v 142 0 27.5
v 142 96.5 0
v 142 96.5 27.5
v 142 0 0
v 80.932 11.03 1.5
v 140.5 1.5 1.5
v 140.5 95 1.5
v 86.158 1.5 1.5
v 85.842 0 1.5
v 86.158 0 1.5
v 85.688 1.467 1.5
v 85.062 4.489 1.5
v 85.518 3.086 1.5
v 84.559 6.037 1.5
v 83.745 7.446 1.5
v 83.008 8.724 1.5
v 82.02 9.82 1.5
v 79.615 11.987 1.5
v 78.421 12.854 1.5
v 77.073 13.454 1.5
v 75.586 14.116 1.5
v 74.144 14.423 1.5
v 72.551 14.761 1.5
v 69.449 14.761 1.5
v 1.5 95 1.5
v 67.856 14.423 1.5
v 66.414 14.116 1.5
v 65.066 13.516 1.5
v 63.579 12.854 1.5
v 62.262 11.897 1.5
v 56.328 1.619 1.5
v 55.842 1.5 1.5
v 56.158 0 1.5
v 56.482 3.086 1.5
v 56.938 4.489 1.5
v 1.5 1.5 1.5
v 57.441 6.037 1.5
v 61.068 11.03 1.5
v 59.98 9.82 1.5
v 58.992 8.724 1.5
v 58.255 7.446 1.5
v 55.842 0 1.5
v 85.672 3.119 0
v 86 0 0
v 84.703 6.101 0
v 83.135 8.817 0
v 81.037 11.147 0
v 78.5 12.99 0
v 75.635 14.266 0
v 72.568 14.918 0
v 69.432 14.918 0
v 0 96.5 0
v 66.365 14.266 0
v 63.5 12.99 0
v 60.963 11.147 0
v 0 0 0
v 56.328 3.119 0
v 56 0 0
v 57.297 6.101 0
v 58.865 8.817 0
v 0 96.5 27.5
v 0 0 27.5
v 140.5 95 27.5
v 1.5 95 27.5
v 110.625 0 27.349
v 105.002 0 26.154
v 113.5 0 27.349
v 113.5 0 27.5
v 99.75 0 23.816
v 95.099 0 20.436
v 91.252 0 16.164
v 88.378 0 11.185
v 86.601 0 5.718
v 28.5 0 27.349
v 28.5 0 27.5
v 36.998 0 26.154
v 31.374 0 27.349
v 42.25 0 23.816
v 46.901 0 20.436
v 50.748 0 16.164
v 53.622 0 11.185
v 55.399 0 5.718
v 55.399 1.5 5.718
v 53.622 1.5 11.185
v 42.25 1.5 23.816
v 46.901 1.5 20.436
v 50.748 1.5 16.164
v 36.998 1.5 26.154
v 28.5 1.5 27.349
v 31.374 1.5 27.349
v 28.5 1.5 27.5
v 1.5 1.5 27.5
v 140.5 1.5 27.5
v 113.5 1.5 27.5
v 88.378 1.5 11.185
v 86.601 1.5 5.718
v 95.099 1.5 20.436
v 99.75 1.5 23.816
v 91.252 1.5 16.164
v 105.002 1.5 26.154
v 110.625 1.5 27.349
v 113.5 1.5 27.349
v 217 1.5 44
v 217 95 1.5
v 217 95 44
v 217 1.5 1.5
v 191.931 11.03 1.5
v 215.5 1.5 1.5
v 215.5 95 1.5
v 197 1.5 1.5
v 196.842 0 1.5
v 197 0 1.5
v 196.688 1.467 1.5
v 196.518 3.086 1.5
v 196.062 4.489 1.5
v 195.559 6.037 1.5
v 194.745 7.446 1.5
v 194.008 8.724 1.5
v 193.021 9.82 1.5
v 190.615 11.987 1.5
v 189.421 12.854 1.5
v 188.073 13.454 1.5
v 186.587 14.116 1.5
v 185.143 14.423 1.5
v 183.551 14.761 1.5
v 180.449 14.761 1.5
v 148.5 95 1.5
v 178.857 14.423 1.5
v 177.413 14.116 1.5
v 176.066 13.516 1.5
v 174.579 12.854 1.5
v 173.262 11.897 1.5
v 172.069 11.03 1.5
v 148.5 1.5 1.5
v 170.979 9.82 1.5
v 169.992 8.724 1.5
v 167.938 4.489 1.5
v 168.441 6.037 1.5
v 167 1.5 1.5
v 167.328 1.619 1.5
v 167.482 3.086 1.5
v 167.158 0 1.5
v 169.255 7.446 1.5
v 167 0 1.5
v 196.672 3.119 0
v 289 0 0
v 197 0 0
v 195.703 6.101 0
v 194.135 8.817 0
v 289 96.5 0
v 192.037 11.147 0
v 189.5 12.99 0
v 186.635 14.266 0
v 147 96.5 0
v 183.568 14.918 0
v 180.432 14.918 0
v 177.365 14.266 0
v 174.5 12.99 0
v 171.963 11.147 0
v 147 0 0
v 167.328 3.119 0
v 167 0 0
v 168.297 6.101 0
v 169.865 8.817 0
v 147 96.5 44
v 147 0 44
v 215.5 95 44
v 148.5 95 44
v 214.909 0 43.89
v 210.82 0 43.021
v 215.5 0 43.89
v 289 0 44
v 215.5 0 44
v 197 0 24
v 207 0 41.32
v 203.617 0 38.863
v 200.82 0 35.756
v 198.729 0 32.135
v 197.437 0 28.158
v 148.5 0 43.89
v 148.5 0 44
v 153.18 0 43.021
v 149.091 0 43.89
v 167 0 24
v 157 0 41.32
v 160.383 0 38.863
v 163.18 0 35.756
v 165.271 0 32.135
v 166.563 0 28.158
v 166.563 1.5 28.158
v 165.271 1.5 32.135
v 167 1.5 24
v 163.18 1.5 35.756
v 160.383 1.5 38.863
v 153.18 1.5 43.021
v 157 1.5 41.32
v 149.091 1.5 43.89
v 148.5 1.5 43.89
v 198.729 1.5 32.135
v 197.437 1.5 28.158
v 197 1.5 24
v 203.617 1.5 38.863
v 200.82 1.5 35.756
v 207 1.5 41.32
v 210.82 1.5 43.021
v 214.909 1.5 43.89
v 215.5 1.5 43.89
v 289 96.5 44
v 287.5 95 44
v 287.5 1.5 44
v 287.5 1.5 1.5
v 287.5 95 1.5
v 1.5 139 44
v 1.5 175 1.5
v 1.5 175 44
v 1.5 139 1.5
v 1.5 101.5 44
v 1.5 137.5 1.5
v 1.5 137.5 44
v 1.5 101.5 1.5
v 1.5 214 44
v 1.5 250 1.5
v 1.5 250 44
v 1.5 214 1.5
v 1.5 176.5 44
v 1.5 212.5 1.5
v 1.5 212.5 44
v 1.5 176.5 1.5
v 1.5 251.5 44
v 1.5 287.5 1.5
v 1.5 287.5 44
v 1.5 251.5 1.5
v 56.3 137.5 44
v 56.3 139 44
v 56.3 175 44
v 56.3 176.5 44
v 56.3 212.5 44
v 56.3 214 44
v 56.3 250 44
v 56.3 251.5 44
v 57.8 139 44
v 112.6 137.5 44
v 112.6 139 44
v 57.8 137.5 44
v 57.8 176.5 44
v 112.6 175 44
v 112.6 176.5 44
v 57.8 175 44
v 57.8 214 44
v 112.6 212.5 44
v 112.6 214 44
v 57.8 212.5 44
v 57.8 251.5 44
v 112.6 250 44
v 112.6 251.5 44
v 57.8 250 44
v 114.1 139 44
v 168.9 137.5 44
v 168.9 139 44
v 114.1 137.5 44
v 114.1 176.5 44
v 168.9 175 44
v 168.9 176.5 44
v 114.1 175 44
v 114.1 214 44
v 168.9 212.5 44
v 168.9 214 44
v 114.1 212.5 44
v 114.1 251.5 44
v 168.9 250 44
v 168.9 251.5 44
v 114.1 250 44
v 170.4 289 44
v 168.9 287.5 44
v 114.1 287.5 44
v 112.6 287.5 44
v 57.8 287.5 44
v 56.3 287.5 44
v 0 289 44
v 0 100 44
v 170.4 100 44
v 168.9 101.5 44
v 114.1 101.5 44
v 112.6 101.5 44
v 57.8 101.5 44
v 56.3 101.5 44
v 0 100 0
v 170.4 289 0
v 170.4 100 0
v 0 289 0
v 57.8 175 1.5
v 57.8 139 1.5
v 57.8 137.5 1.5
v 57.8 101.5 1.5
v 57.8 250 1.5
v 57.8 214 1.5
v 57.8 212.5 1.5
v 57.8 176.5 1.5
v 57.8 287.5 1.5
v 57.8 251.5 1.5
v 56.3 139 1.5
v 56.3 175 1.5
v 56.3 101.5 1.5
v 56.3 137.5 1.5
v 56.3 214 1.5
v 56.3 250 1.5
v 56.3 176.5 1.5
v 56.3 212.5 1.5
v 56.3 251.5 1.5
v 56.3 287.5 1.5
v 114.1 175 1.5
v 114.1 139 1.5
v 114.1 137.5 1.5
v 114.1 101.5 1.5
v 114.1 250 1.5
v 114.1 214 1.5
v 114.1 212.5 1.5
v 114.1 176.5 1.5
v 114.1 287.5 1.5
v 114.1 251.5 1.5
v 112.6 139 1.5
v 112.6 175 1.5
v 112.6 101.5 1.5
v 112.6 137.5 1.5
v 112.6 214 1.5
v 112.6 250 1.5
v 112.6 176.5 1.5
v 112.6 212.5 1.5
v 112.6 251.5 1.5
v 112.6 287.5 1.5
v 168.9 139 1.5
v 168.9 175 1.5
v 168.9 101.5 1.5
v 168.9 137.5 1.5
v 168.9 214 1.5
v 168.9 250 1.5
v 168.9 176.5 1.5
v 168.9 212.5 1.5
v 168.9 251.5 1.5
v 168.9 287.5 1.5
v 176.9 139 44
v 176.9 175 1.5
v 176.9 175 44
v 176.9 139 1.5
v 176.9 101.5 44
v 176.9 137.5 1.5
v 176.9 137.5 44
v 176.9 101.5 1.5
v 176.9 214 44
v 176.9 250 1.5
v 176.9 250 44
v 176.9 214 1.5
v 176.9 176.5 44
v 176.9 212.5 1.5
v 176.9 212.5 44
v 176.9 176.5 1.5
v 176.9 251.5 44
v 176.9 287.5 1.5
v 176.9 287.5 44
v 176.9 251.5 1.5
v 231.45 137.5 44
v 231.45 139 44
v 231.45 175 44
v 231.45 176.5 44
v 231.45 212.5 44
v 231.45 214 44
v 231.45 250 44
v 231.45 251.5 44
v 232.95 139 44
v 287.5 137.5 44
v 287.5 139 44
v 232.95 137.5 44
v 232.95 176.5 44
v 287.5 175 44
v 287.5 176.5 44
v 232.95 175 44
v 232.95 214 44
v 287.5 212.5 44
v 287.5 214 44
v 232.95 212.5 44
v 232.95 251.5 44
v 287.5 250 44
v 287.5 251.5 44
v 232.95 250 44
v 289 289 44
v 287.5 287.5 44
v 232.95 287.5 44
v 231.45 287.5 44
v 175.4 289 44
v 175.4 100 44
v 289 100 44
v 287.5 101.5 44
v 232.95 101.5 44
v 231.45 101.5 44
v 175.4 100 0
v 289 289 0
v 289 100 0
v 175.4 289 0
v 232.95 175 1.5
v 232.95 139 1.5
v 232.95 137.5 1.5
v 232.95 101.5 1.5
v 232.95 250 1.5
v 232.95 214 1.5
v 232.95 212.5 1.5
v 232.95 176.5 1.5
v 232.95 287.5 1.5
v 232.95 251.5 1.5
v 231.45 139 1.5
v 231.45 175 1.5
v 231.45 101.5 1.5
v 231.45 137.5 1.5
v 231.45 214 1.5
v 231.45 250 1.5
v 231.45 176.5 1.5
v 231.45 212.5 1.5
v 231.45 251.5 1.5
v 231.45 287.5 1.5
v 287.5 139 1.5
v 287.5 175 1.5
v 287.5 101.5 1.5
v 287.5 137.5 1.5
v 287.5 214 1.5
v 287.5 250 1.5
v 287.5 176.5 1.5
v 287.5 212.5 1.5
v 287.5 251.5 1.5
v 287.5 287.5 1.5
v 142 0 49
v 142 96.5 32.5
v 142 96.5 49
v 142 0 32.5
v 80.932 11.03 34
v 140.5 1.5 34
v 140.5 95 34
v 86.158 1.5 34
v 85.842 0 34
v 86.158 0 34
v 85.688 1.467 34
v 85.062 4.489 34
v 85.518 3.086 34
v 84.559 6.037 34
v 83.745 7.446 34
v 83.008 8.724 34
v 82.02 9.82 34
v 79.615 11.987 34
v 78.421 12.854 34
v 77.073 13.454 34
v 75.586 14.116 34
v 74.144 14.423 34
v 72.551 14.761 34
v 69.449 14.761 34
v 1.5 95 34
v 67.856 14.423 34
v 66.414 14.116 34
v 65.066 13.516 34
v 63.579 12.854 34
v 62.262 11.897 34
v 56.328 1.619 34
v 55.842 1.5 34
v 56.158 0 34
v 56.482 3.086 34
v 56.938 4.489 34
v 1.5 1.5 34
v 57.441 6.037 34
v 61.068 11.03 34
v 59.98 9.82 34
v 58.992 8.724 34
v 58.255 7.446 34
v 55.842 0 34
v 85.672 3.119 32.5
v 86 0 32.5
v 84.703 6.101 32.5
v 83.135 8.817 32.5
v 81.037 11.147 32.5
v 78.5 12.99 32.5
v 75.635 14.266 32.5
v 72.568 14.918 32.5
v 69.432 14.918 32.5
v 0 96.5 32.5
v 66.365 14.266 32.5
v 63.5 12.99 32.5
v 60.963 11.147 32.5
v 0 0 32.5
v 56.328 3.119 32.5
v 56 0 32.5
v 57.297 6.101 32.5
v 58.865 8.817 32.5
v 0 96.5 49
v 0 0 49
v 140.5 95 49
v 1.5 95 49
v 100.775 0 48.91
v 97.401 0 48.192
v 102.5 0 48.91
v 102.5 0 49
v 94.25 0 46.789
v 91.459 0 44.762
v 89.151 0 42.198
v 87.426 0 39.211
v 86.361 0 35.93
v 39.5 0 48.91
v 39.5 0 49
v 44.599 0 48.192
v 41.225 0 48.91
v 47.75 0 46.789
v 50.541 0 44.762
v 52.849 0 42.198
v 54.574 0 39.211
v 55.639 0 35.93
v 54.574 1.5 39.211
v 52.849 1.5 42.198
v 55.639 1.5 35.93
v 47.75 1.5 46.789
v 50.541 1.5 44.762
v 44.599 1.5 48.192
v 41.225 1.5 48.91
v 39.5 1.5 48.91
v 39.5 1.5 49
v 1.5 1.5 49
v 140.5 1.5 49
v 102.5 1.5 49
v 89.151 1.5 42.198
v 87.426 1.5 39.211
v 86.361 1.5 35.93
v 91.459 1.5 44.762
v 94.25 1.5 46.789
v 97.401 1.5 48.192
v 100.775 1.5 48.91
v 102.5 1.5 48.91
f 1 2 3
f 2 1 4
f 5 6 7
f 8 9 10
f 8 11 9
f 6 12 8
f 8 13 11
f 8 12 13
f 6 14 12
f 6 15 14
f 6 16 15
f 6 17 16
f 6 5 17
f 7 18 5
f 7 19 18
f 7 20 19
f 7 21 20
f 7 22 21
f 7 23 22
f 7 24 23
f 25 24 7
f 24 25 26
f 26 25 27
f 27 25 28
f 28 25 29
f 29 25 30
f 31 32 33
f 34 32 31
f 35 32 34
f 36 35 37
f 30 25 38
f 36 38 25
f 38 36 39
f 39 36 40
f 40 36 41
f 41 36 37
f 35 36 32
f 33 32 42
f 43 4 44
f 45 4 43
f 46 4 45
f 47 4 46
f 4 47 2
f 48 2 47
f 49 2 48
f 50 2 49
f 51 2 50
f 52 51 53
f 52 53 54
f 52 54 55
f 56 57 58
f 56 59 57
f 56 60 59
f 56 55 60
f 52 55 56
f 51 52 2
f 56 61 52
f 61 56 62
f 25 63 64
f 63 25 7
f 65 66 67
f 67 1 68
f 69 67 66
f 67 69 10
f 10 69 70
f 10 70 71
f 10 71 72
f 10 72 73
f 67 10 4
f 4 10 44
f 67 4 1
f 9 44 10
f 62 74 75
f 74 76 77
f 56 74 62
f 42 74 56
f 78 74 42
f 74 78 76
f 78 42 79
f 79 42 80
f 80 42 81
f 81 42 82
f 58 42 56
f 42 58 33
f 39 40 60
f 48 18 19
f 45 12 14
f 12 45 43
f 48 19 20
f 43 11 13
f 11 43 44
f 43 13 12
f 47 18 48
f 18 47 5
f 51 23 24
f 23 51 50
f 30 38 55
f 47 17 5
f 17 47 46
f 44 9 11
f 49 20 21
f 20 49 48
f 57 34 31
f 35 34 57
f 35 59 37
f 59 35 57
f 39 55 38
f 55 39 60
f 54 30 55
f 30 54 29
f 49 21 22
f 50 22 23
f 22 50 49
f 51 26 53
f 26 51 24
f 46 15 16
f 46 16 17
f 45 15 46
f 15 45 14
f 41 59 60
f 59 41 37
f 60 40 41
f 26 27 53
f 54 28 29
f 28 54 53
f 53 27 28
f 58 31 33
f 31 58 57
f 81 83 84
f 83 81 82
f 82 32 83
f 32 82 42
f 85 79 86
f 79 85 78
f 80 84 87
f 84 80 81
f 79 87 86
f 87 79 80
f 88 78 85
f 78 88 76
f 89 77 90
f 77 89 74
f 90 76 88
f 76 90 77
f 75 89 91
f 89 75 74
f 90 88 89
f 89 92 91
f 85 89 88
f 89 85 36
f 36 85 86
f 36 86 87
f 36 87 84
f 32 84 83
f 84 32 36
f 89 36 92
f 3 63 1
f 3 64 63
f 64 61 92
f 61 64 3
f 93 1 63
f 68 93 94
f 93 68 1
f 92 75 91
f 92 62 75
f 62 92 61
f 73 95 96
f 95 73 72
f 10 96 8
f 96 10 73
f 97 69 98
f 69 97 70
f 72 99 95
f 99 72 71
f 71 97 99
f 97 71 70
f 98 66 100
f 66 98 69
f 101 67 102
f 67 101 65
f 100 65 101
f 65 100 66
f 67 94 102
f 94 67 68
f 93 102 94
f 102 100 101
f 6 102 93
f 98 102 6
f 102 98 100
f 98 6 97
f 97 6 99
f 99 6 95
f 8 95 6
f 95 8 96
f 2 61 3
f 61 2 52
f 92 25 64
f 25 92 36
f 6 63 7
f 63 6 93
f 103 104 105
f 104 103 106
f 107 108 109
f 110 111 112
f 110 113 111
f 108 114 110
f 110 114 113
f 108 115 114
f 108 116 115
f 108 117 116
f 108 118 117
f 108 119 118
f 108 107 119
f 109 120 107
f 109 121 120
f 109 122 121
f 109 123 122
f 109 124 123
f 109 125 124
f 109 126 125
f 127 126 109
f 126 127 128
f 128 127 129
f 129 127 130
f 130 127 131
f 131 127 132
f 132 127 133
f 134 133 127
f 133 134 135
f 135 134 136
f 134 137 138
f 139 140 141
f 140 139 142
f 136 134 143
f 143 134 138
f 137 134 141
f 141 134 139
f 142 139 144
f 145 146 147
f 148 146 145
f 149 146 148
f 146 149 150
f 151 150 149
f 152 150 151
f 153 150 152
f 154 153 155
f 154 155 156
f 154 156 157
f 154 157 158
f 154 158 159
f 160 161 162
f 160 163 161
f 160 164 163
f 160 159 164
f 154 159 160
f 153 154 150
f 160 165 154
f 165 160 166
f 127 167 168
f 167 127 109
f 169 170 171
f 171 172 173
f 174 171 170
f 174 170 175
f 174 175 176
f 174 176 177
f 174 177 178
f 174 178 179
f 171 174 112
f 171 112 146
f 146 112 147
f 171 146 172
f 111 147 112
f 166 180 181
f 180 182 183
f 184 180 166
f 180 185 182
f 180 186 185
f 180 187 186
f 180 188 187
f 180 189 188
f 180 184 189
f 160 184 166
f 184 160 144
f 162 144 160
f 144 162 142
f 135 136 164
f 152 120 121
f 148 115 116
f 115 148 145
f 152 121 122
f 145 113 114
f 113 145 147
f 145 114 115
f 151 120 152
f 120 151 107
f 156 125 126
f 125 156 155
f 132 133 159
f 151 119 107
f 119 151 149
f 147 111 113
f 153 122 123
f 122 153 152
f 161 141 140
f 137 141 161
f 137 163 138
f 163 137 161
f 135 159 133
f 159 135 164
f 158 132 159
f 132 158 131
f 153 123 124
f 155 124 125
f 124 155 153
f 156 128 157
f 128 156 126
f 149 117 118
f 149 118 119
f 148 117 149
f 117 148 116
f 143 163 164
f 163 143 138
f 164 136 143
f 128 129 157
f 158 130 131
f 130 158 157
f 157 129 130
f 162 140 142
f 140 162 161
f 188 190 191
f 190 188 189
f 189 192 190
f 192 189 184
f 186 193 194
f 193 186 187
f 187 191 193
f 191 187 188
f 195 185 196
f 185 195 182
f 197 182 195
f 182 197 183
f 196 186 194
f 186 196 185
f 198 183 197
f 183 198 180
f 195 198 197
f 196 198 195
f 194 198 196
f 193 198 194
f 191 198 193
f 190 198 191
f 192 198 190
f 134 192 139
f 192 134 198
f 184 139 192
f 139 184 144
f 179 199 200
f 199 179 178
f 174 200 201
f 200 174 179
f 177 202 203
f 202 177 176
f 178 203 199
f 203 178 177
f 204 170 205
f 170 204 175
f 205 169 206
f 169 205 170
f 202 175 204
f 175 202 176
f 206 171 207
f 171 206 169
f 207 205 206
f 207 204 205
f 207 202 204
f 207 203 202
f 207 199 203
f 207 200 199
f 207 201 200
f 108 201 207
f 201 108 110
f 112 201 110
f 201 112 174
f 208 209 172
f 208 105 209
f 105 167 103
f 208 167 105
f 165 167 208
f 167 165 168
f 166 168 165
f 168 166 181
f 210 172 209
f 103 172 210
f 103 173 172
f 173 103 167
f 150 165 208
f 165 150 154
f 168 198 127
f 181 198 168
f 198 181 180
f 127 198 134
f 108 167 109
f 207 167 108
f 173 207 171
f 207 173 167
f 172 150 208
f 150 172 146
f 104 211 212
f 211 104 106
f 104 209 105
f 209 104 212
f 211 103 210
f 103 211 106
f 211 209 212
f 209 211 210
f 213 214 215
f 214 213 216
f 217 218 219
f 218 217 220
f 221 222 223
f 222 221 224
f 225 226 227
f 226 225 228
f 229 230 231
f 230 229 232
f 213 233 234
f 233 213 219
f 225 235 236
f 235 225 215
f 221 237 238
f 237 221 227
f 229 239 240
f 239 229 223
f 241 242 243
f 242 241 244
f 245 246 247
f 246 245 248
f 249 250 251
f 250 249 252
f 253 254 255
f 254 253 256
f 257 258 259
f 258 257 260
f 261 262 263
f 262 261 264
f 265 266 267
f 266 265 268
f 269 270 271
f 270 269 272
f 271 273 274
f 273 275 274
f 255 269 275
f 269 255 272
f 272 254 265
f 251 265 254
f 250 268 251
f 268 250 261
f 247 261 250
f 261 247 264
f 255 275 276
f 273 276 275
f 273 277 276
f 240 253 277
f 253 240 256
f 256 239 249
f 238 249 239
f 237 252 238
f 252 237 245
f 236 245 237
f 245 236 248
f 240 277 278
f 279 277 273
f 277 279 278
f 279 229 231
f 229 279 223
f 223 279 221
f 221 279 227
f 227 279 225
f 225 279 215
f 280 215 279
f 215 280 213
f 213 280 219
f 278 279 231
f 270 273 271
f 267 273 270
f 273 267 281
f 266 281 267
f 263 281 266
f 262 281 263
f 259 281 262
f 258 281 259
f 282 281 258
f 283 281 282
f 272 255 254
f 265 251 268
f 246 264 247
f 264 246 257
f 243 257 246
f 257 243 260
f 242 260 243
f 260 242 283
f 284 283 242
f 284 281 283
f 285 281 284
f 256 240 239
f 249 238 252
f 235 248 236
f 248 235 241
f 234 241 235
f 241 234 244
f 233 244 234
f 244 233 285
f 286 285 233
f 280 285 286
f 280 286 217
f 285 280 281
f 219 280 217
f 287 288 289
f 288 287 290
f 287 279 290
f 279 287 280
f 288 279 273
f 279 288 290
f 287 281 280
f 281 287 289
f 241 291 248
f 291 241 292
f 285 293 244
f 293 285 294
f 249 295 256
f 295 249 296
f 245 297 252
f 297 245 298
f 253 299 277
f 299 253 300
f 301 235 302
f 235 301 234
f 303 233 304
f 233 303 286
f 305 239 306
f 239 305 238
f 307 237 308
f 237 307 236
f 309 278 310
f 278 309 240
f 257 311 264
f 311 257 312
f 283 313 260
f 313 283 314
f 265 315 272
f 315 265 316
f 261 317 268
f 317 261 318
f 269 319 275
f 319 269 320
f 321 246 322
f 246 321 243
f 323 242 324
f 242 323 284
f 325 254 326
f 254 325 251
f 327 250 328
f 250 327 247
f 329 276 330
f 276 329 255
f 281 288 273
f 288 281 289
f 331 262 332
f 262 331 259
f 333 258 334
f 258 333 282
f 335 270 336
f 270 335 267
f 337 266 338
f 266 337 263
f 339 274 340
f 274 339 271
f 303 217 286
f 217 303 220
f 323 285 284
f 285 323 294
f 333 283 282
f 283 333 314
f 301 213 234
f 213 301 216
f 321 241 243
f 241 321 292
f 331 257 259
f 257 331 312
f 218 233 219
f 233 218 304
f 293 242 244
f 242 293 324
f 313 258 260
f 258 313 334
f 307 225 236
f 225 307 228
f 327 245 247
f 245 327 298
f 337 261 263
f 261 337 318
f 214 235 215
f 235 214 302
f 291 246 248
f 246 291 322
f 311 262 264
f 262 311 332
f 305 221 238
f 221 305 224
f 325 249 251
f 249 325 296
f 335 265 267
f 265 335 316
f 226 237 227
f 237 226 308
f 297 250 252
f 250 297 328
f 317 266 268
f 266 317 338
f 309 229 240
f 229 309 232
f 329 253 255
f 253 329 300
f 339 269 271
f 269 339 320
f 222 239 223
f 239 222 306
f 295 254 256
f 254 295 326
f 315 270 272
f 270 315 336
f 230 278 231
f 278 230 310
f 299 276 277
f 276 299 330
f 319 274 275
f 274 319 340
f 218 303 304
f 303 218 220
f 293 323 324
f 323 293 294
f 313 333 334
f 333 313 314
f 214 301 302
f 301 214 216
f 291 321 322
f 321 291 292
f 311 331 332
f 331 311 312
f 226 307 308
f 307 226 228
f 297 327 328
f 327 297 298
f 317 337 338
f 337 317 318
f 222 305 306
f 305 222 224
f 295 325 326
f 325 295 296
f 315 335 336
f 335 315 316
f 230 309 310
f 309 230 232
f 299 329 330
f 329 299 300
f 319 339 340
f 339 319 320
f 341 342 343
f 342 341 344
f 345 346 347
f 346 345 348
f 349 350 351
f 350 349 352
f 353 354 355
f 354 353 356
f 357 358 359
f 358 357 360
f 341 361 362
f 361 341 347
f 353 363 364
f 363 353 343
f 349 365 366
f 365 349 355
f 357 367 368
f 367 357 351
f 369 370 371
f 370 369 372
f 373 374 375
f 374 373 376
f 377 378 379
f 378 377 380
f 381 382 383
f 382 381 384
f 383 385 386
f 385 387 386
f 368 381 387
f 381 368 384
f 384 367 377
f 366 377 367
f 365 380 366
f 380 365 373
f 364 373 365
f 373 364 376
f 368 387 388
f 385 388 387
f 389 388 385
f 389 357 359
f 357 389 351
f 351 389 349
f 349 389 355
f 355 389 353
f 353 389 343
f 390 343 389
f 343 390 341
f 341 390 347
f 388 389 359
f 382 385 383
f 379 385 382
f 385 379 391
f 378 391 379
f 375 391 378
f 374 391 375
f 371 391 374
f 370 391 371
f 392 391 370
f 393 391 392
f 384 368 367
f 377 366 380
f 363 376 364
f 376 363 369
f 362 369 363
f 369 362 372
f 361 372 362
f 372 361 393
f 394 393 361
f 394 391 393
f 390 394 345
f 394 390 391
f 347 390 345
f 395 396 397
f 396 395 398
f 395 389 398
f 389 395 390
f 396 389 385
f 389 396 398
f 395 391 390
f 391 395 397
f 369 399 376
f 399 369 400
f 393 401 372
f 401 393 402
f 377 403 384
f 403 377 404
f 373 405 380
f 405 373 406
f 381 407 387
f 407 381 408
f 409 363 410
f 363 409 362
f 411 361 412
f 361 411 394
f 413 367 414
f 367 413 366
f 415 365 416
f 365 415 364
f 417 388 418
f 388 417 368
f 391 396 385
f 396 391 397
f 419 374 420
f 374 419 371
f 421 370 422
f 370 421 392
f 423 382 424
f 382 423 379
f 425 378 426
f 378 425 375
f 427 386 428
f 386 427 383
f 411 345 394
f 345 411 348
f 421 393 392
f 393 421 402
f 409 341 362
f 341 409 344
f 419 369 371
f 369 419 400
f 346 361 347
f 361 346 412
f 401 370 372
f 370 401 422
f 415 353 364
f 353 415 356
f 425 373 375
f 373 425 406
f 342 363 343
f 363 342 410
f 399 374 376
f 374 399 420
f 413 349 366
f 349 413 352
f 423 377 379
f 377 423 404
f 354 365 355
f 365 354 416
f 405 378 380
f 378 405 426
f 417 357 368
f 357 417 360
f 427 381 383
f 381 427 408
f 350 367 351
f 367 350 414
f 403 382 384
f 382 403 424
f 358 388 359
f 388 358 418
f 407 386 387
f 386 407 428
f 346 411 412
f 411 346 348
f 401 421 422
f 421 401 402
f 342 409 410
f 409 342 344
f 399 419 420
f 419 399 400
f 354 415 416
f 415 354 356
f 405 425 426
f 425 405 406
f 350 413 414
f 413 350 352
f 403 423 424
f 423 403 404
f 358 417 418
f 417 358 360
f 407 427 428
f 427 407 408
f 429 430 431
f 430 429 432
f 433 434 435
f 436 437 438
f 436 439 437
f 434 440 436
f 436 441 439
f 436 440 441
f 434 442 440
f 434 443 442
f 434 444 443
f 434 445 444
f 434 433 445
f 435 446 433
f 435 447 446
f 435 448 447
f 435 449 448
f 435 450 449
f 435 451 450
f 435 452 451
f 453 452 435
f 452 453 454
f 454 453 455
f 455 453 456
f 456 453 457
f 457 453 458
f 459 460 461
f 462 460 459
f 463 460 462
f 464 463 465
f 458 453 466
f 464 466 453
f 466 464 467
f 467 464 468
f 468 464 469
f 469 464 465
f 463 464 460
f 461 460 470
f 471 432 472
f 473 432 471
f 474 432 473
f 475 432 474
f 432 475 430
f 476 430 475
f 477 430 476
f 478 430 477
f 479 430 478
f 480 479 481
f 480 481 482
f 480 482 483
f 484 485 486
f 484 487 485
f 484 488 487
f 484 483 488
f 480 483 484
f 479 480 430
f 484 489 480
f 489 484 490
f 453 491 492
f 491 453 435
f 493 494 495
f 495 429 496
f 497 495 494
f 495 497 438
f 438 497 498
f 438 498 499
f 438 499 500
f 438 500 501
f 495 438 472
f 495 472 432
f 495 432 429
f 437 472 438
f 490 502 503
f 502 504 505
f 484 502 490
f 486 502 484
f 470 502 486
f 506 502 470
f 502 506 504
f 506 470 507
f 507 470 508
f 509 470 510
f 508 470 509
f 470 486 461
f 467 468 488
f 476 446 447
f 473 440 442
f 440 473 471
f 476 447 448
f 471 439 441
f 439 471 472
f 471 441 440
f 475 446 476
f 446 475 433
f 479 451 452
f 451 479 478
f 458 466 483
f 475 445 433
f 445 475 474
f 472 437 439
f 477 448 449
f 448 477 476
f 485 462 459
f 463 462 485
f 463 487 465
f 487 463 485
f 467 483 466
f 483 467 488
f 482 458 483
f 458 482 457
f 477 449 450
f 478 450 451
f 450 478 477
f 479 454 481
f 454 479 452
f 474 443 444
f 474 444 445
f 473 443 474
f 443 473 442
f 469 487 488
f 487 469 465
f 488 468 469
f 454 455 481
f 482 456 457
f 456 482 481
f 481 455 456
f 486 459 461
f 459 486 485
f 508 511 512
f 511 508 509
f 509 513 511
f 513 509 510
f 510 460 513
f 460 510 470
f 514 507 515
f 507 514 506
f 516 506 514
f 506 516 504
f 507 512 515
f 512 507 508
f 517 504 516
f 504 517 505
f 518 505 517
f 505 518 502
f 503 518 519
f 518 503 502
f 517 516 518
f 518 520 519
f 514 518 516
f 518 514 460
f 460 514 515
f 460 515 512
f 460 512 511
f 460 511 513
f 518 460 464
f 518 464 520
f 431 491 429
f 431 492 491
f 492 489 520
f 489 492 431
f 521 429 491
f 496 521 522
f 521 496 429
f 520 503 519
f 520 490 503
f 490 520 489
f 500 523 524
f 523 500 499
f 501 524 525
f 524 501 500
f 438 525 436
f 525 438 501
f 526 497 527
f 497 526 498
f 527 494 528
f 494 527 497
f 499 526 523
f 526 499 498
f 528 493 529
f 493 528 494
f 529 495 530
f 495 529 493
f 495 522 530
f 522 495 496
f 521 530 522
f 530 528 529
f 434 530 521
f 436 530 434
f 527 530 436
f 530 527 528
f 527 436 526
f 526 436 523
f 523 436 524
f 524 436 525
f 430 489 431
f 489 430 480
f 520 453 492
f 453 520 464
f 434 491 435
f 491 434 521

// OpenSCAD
// file: ../lib/utils.scad
function Sum_Numbers(numbers = [ 1, 2, 3 ], i = 0) =
    i == len(numbers) ? 0 : numbers[i] + Sum_Numbers(numbers, i + 1);

function Sum(elements = [ [ 1, 2, 3 ], 5 ]) =
    let(max_element_length = max(
            [for (element = elements) is_list(element) ? len(element)
                                                       : 0])) max_element_length
        ? [for (i = [0:max_element_length - 1]) Sum_Numbers(
              [for (element = elements) is_list(element)
                      ? (element[i] ? element[i] : 0)
                      : element])]
        : Sum_Numbers(elements);

function Multiply(list = [ 1, 2, 3 ], number = 3) =
    [for (element = list) element * number];

function Minus(list_or_number = [ 1, 2, 3 ]) =
    is_list(list_or_number)
        ? [for (list_element = list_or_number) Minus(list_element)]
        : -list_or_number;

module Open_Box(size = [ 1, 1, 1 ], x = 1, y = 1, t = wall) {
  cube([ size.x, size.y, t ]);
  dx = (size.x - t) / x;
  dy = (size.y - t) / y;
  for (i = [0:x]) {
    translate([ i * dx, 0, 0 ]) { cube([ t, size.y, size.z ]); }
  }
  for (i = [0:y]) {
    translate([ 0, i * dy, 0 ]) { cube([ size.x, t, size.z ]); }
  }
}

module Box_Wall_Part(size = [ 1, 1, 1 ], rounded = false) {
  if (rounded) {
    cube_height_or_width = size.z - size.x;
    cube([
      cube_height_or_width < 0 ? -cube_height_or_width : size.x,
      size.y,
      cube_height_or_width > 0 ? cube_height_or_width : size.z
    ]);

    cylinder_radius = cube_height_or_width > 0 ? size.x : size.z;

    translate([
      cube_height_or_width < 0 ? -cube_height_or_width : 0,
      0,
      cube_height_or_width > 0 ? cube_height_or_width : 0
    ]) {
      intersection() {
        rotate([ 90, 0, 0 ]) cylinder(
            h = size.x,
            r1 = cylinder_radius,
            r2 = cylinder_radius,
            center = true);
        cube([ size.x, size.y, size.z ]);
      }
    }
  } else {
    cube(size);
  }
}

module Box_Wall(size = [ 1, 1, 1 ], hole_diameter = 0, rounded = 0) {
  module _Box_Wall_Part() {
    Box_Wall_Part(
        size = [ (size.x - hole_diameter) / 2, size.y, size.z ],
        rounded = rounded);
  }
  if (hole_diameter > 0) {
    _Box_Wall_Part();
    translate([ size.x, 0, 0 ]) mirror([ 1, 0, 0 ]) _Box_Wall_Part();
  } else {
    cube(size);
  }
}

module
Box(size = [ 1, 1, 1 ],
    wall = wall,
    bottom_hole_diameter = 0,
    top_hole_diameter = 0,
    left_hole_diameter = 0,
    right_hole_diameter = 0,
    rounded = false) {
  base = [ size.x, size.y, wall ];

  difference() {
    cube(base);
    translate([ size.x / 2, 0, 0 ]) { sphere(d = bottom_hole_diameter); }
    translate([ size.x / 2, size.y, 0 ]) { sphere(d = top_hole_diameter); }
    translate([ 0, size.y / 2, 0 ]) { sphere(d = left_hole_diameter); }
    translate([ size.x, size.y / 2, 0 ]) { sphere(d = right_hole_diameter); }
  }

  Box_Wall(
      size = [ size.x, wall, size.z ],
      hole_diameter = bottom_hole_diameter,
      rounded = rounded);

  translate([ 0, size.y, 0 ]) {
    Box_Wall(
        size = [ size.x, wall, size.z ],
        hole_diameter = top_hole_diameter,
        rounded = rounded);
  }

  translate([ wall, 0, 0 ]) {
    rotate(a = 90) {
      Box_Wall(
          size = [ size.y, wall, size.z ],
          hole_diameter = left_hole_diameter,
          rounded = rounded);
    }
  }

  translate([ size.x, 0, 0 ]) {
    rotate(a = 90) {
      Box_Wall(
          size = [ size.y, wall, size.z ],
          hole_diameter = right_hole_diameter,
          rounded = rounded);
    }
  }
}

module Multi_Box(
    size = [ 1, 1, 1 ],
    wall = wall,
    bottom_hole_diameter = 0,
    top_hole_diameter = 0,
    left_hole_diameter = 0,
    right_hole_diameter = 0,
    rounded = false,
    x = 2,
    y = 1) {
  for (i = [0:x - 1]) {
    for (j = [0:y - 1]) {
      translate([ i * (size.x - wall), j * (size.y - wall), 0 ]) {
        Box(size = size,
            wall = wall,
            bottom_hole_diameter = bottom_hole_diameter,
            top_hole_diameter = top_hole_diameter,
            left_hole_diameter = left_hole_diameter,
            right_hole_diameter = right_hole_diameter,
            rounded = rounded);
      }
    }
  }
}
// main file
include <../lib/utils.scad>
gap = 5;
wall = 1.5;

box = [ 286, 286, 46 ];
box_padding = 2;
padded_box = Sum([ box, Minus(box_padding) ]);

earth_tokens = [ 30, 30, 43 ];
x_tokens = [ 38, 38, 43 ];
room_tiles = [ 137, 75, 18 ];
box_walls = [ 2 * wall, 2 * wall, wall ];
cards = [ 66, 91, 37 ];
big_cards = [ 120, 80, 13 ];
cards_padding = [ 1, 1, 2 ];
finger_hole_diameter = 30;
token_types = 25;

rooms_box = Sum([ room_tiles, box_padding, box_walls ]);
cards_box = Sum([ cards, cards_padding, box_walls ]);
big_cards_box = Sum([ big_cards, cards_padding, box_walls ]);
characters_box = [
  padded_box.x - (rooms_box.x + cards_box.x) + wall,
  cards_box.y,
  padded_box.z
];
tokens_space = [ padded_box.x, padded_box.y - cards_box.y, padded_box.z ];
left_tokens_box = [ tokens_space.x * 3 / 5, tokens_space.y, tokens_space.z ];
right_tokens_box = [ tokens_space.x * 2 / 5, tokens_space.y, tokens_space.z ];

expanded_rooms_box =
    [ rooms_box.x, cards_box.y, padded_box.z - big_cards_box.z ];
expanded_cards_box = [ cards_box.x, cards_box.y, padded_box.z ];
expanded_big_cards_box = [ rooms_box.x, cards_box.y, big_cards_box.z ];

Box(size = expanded_rooms_box,
    bottom_hole_diameter = finger_hole_diameter,
    rounded = true);

translate([ expanded_rooms_box.x + gap, 0, 0 ]) {
  Box(size = expanded_cards_box,
      bottom_hole_diameter = finger_hole_diameter,
      rounded = true);
  translate([ expanded_cards_box.x - wall, 0, 0 ]) {
    Box(size = characters_box);
  }
}

translate([ 0, expanded_cards_box.y + gap, 0 ]) {
  Open_Box(size = left_tokens_box, x = 3, y = 5);
  translate([ left_tokens_box.x + gap, 0, 0 ]) {
    Open_Box(size = right_tokens_box, x = 2, y = 5);
  }
}

translate([ 0, 0, expanded_rooms_box.z + gap ]) {
  Box(size = expanded_big_cards_box,
      bottom_hole_diameter = finger_hole_diameter,
      rounded = true);
}

% cube(padded_box);
